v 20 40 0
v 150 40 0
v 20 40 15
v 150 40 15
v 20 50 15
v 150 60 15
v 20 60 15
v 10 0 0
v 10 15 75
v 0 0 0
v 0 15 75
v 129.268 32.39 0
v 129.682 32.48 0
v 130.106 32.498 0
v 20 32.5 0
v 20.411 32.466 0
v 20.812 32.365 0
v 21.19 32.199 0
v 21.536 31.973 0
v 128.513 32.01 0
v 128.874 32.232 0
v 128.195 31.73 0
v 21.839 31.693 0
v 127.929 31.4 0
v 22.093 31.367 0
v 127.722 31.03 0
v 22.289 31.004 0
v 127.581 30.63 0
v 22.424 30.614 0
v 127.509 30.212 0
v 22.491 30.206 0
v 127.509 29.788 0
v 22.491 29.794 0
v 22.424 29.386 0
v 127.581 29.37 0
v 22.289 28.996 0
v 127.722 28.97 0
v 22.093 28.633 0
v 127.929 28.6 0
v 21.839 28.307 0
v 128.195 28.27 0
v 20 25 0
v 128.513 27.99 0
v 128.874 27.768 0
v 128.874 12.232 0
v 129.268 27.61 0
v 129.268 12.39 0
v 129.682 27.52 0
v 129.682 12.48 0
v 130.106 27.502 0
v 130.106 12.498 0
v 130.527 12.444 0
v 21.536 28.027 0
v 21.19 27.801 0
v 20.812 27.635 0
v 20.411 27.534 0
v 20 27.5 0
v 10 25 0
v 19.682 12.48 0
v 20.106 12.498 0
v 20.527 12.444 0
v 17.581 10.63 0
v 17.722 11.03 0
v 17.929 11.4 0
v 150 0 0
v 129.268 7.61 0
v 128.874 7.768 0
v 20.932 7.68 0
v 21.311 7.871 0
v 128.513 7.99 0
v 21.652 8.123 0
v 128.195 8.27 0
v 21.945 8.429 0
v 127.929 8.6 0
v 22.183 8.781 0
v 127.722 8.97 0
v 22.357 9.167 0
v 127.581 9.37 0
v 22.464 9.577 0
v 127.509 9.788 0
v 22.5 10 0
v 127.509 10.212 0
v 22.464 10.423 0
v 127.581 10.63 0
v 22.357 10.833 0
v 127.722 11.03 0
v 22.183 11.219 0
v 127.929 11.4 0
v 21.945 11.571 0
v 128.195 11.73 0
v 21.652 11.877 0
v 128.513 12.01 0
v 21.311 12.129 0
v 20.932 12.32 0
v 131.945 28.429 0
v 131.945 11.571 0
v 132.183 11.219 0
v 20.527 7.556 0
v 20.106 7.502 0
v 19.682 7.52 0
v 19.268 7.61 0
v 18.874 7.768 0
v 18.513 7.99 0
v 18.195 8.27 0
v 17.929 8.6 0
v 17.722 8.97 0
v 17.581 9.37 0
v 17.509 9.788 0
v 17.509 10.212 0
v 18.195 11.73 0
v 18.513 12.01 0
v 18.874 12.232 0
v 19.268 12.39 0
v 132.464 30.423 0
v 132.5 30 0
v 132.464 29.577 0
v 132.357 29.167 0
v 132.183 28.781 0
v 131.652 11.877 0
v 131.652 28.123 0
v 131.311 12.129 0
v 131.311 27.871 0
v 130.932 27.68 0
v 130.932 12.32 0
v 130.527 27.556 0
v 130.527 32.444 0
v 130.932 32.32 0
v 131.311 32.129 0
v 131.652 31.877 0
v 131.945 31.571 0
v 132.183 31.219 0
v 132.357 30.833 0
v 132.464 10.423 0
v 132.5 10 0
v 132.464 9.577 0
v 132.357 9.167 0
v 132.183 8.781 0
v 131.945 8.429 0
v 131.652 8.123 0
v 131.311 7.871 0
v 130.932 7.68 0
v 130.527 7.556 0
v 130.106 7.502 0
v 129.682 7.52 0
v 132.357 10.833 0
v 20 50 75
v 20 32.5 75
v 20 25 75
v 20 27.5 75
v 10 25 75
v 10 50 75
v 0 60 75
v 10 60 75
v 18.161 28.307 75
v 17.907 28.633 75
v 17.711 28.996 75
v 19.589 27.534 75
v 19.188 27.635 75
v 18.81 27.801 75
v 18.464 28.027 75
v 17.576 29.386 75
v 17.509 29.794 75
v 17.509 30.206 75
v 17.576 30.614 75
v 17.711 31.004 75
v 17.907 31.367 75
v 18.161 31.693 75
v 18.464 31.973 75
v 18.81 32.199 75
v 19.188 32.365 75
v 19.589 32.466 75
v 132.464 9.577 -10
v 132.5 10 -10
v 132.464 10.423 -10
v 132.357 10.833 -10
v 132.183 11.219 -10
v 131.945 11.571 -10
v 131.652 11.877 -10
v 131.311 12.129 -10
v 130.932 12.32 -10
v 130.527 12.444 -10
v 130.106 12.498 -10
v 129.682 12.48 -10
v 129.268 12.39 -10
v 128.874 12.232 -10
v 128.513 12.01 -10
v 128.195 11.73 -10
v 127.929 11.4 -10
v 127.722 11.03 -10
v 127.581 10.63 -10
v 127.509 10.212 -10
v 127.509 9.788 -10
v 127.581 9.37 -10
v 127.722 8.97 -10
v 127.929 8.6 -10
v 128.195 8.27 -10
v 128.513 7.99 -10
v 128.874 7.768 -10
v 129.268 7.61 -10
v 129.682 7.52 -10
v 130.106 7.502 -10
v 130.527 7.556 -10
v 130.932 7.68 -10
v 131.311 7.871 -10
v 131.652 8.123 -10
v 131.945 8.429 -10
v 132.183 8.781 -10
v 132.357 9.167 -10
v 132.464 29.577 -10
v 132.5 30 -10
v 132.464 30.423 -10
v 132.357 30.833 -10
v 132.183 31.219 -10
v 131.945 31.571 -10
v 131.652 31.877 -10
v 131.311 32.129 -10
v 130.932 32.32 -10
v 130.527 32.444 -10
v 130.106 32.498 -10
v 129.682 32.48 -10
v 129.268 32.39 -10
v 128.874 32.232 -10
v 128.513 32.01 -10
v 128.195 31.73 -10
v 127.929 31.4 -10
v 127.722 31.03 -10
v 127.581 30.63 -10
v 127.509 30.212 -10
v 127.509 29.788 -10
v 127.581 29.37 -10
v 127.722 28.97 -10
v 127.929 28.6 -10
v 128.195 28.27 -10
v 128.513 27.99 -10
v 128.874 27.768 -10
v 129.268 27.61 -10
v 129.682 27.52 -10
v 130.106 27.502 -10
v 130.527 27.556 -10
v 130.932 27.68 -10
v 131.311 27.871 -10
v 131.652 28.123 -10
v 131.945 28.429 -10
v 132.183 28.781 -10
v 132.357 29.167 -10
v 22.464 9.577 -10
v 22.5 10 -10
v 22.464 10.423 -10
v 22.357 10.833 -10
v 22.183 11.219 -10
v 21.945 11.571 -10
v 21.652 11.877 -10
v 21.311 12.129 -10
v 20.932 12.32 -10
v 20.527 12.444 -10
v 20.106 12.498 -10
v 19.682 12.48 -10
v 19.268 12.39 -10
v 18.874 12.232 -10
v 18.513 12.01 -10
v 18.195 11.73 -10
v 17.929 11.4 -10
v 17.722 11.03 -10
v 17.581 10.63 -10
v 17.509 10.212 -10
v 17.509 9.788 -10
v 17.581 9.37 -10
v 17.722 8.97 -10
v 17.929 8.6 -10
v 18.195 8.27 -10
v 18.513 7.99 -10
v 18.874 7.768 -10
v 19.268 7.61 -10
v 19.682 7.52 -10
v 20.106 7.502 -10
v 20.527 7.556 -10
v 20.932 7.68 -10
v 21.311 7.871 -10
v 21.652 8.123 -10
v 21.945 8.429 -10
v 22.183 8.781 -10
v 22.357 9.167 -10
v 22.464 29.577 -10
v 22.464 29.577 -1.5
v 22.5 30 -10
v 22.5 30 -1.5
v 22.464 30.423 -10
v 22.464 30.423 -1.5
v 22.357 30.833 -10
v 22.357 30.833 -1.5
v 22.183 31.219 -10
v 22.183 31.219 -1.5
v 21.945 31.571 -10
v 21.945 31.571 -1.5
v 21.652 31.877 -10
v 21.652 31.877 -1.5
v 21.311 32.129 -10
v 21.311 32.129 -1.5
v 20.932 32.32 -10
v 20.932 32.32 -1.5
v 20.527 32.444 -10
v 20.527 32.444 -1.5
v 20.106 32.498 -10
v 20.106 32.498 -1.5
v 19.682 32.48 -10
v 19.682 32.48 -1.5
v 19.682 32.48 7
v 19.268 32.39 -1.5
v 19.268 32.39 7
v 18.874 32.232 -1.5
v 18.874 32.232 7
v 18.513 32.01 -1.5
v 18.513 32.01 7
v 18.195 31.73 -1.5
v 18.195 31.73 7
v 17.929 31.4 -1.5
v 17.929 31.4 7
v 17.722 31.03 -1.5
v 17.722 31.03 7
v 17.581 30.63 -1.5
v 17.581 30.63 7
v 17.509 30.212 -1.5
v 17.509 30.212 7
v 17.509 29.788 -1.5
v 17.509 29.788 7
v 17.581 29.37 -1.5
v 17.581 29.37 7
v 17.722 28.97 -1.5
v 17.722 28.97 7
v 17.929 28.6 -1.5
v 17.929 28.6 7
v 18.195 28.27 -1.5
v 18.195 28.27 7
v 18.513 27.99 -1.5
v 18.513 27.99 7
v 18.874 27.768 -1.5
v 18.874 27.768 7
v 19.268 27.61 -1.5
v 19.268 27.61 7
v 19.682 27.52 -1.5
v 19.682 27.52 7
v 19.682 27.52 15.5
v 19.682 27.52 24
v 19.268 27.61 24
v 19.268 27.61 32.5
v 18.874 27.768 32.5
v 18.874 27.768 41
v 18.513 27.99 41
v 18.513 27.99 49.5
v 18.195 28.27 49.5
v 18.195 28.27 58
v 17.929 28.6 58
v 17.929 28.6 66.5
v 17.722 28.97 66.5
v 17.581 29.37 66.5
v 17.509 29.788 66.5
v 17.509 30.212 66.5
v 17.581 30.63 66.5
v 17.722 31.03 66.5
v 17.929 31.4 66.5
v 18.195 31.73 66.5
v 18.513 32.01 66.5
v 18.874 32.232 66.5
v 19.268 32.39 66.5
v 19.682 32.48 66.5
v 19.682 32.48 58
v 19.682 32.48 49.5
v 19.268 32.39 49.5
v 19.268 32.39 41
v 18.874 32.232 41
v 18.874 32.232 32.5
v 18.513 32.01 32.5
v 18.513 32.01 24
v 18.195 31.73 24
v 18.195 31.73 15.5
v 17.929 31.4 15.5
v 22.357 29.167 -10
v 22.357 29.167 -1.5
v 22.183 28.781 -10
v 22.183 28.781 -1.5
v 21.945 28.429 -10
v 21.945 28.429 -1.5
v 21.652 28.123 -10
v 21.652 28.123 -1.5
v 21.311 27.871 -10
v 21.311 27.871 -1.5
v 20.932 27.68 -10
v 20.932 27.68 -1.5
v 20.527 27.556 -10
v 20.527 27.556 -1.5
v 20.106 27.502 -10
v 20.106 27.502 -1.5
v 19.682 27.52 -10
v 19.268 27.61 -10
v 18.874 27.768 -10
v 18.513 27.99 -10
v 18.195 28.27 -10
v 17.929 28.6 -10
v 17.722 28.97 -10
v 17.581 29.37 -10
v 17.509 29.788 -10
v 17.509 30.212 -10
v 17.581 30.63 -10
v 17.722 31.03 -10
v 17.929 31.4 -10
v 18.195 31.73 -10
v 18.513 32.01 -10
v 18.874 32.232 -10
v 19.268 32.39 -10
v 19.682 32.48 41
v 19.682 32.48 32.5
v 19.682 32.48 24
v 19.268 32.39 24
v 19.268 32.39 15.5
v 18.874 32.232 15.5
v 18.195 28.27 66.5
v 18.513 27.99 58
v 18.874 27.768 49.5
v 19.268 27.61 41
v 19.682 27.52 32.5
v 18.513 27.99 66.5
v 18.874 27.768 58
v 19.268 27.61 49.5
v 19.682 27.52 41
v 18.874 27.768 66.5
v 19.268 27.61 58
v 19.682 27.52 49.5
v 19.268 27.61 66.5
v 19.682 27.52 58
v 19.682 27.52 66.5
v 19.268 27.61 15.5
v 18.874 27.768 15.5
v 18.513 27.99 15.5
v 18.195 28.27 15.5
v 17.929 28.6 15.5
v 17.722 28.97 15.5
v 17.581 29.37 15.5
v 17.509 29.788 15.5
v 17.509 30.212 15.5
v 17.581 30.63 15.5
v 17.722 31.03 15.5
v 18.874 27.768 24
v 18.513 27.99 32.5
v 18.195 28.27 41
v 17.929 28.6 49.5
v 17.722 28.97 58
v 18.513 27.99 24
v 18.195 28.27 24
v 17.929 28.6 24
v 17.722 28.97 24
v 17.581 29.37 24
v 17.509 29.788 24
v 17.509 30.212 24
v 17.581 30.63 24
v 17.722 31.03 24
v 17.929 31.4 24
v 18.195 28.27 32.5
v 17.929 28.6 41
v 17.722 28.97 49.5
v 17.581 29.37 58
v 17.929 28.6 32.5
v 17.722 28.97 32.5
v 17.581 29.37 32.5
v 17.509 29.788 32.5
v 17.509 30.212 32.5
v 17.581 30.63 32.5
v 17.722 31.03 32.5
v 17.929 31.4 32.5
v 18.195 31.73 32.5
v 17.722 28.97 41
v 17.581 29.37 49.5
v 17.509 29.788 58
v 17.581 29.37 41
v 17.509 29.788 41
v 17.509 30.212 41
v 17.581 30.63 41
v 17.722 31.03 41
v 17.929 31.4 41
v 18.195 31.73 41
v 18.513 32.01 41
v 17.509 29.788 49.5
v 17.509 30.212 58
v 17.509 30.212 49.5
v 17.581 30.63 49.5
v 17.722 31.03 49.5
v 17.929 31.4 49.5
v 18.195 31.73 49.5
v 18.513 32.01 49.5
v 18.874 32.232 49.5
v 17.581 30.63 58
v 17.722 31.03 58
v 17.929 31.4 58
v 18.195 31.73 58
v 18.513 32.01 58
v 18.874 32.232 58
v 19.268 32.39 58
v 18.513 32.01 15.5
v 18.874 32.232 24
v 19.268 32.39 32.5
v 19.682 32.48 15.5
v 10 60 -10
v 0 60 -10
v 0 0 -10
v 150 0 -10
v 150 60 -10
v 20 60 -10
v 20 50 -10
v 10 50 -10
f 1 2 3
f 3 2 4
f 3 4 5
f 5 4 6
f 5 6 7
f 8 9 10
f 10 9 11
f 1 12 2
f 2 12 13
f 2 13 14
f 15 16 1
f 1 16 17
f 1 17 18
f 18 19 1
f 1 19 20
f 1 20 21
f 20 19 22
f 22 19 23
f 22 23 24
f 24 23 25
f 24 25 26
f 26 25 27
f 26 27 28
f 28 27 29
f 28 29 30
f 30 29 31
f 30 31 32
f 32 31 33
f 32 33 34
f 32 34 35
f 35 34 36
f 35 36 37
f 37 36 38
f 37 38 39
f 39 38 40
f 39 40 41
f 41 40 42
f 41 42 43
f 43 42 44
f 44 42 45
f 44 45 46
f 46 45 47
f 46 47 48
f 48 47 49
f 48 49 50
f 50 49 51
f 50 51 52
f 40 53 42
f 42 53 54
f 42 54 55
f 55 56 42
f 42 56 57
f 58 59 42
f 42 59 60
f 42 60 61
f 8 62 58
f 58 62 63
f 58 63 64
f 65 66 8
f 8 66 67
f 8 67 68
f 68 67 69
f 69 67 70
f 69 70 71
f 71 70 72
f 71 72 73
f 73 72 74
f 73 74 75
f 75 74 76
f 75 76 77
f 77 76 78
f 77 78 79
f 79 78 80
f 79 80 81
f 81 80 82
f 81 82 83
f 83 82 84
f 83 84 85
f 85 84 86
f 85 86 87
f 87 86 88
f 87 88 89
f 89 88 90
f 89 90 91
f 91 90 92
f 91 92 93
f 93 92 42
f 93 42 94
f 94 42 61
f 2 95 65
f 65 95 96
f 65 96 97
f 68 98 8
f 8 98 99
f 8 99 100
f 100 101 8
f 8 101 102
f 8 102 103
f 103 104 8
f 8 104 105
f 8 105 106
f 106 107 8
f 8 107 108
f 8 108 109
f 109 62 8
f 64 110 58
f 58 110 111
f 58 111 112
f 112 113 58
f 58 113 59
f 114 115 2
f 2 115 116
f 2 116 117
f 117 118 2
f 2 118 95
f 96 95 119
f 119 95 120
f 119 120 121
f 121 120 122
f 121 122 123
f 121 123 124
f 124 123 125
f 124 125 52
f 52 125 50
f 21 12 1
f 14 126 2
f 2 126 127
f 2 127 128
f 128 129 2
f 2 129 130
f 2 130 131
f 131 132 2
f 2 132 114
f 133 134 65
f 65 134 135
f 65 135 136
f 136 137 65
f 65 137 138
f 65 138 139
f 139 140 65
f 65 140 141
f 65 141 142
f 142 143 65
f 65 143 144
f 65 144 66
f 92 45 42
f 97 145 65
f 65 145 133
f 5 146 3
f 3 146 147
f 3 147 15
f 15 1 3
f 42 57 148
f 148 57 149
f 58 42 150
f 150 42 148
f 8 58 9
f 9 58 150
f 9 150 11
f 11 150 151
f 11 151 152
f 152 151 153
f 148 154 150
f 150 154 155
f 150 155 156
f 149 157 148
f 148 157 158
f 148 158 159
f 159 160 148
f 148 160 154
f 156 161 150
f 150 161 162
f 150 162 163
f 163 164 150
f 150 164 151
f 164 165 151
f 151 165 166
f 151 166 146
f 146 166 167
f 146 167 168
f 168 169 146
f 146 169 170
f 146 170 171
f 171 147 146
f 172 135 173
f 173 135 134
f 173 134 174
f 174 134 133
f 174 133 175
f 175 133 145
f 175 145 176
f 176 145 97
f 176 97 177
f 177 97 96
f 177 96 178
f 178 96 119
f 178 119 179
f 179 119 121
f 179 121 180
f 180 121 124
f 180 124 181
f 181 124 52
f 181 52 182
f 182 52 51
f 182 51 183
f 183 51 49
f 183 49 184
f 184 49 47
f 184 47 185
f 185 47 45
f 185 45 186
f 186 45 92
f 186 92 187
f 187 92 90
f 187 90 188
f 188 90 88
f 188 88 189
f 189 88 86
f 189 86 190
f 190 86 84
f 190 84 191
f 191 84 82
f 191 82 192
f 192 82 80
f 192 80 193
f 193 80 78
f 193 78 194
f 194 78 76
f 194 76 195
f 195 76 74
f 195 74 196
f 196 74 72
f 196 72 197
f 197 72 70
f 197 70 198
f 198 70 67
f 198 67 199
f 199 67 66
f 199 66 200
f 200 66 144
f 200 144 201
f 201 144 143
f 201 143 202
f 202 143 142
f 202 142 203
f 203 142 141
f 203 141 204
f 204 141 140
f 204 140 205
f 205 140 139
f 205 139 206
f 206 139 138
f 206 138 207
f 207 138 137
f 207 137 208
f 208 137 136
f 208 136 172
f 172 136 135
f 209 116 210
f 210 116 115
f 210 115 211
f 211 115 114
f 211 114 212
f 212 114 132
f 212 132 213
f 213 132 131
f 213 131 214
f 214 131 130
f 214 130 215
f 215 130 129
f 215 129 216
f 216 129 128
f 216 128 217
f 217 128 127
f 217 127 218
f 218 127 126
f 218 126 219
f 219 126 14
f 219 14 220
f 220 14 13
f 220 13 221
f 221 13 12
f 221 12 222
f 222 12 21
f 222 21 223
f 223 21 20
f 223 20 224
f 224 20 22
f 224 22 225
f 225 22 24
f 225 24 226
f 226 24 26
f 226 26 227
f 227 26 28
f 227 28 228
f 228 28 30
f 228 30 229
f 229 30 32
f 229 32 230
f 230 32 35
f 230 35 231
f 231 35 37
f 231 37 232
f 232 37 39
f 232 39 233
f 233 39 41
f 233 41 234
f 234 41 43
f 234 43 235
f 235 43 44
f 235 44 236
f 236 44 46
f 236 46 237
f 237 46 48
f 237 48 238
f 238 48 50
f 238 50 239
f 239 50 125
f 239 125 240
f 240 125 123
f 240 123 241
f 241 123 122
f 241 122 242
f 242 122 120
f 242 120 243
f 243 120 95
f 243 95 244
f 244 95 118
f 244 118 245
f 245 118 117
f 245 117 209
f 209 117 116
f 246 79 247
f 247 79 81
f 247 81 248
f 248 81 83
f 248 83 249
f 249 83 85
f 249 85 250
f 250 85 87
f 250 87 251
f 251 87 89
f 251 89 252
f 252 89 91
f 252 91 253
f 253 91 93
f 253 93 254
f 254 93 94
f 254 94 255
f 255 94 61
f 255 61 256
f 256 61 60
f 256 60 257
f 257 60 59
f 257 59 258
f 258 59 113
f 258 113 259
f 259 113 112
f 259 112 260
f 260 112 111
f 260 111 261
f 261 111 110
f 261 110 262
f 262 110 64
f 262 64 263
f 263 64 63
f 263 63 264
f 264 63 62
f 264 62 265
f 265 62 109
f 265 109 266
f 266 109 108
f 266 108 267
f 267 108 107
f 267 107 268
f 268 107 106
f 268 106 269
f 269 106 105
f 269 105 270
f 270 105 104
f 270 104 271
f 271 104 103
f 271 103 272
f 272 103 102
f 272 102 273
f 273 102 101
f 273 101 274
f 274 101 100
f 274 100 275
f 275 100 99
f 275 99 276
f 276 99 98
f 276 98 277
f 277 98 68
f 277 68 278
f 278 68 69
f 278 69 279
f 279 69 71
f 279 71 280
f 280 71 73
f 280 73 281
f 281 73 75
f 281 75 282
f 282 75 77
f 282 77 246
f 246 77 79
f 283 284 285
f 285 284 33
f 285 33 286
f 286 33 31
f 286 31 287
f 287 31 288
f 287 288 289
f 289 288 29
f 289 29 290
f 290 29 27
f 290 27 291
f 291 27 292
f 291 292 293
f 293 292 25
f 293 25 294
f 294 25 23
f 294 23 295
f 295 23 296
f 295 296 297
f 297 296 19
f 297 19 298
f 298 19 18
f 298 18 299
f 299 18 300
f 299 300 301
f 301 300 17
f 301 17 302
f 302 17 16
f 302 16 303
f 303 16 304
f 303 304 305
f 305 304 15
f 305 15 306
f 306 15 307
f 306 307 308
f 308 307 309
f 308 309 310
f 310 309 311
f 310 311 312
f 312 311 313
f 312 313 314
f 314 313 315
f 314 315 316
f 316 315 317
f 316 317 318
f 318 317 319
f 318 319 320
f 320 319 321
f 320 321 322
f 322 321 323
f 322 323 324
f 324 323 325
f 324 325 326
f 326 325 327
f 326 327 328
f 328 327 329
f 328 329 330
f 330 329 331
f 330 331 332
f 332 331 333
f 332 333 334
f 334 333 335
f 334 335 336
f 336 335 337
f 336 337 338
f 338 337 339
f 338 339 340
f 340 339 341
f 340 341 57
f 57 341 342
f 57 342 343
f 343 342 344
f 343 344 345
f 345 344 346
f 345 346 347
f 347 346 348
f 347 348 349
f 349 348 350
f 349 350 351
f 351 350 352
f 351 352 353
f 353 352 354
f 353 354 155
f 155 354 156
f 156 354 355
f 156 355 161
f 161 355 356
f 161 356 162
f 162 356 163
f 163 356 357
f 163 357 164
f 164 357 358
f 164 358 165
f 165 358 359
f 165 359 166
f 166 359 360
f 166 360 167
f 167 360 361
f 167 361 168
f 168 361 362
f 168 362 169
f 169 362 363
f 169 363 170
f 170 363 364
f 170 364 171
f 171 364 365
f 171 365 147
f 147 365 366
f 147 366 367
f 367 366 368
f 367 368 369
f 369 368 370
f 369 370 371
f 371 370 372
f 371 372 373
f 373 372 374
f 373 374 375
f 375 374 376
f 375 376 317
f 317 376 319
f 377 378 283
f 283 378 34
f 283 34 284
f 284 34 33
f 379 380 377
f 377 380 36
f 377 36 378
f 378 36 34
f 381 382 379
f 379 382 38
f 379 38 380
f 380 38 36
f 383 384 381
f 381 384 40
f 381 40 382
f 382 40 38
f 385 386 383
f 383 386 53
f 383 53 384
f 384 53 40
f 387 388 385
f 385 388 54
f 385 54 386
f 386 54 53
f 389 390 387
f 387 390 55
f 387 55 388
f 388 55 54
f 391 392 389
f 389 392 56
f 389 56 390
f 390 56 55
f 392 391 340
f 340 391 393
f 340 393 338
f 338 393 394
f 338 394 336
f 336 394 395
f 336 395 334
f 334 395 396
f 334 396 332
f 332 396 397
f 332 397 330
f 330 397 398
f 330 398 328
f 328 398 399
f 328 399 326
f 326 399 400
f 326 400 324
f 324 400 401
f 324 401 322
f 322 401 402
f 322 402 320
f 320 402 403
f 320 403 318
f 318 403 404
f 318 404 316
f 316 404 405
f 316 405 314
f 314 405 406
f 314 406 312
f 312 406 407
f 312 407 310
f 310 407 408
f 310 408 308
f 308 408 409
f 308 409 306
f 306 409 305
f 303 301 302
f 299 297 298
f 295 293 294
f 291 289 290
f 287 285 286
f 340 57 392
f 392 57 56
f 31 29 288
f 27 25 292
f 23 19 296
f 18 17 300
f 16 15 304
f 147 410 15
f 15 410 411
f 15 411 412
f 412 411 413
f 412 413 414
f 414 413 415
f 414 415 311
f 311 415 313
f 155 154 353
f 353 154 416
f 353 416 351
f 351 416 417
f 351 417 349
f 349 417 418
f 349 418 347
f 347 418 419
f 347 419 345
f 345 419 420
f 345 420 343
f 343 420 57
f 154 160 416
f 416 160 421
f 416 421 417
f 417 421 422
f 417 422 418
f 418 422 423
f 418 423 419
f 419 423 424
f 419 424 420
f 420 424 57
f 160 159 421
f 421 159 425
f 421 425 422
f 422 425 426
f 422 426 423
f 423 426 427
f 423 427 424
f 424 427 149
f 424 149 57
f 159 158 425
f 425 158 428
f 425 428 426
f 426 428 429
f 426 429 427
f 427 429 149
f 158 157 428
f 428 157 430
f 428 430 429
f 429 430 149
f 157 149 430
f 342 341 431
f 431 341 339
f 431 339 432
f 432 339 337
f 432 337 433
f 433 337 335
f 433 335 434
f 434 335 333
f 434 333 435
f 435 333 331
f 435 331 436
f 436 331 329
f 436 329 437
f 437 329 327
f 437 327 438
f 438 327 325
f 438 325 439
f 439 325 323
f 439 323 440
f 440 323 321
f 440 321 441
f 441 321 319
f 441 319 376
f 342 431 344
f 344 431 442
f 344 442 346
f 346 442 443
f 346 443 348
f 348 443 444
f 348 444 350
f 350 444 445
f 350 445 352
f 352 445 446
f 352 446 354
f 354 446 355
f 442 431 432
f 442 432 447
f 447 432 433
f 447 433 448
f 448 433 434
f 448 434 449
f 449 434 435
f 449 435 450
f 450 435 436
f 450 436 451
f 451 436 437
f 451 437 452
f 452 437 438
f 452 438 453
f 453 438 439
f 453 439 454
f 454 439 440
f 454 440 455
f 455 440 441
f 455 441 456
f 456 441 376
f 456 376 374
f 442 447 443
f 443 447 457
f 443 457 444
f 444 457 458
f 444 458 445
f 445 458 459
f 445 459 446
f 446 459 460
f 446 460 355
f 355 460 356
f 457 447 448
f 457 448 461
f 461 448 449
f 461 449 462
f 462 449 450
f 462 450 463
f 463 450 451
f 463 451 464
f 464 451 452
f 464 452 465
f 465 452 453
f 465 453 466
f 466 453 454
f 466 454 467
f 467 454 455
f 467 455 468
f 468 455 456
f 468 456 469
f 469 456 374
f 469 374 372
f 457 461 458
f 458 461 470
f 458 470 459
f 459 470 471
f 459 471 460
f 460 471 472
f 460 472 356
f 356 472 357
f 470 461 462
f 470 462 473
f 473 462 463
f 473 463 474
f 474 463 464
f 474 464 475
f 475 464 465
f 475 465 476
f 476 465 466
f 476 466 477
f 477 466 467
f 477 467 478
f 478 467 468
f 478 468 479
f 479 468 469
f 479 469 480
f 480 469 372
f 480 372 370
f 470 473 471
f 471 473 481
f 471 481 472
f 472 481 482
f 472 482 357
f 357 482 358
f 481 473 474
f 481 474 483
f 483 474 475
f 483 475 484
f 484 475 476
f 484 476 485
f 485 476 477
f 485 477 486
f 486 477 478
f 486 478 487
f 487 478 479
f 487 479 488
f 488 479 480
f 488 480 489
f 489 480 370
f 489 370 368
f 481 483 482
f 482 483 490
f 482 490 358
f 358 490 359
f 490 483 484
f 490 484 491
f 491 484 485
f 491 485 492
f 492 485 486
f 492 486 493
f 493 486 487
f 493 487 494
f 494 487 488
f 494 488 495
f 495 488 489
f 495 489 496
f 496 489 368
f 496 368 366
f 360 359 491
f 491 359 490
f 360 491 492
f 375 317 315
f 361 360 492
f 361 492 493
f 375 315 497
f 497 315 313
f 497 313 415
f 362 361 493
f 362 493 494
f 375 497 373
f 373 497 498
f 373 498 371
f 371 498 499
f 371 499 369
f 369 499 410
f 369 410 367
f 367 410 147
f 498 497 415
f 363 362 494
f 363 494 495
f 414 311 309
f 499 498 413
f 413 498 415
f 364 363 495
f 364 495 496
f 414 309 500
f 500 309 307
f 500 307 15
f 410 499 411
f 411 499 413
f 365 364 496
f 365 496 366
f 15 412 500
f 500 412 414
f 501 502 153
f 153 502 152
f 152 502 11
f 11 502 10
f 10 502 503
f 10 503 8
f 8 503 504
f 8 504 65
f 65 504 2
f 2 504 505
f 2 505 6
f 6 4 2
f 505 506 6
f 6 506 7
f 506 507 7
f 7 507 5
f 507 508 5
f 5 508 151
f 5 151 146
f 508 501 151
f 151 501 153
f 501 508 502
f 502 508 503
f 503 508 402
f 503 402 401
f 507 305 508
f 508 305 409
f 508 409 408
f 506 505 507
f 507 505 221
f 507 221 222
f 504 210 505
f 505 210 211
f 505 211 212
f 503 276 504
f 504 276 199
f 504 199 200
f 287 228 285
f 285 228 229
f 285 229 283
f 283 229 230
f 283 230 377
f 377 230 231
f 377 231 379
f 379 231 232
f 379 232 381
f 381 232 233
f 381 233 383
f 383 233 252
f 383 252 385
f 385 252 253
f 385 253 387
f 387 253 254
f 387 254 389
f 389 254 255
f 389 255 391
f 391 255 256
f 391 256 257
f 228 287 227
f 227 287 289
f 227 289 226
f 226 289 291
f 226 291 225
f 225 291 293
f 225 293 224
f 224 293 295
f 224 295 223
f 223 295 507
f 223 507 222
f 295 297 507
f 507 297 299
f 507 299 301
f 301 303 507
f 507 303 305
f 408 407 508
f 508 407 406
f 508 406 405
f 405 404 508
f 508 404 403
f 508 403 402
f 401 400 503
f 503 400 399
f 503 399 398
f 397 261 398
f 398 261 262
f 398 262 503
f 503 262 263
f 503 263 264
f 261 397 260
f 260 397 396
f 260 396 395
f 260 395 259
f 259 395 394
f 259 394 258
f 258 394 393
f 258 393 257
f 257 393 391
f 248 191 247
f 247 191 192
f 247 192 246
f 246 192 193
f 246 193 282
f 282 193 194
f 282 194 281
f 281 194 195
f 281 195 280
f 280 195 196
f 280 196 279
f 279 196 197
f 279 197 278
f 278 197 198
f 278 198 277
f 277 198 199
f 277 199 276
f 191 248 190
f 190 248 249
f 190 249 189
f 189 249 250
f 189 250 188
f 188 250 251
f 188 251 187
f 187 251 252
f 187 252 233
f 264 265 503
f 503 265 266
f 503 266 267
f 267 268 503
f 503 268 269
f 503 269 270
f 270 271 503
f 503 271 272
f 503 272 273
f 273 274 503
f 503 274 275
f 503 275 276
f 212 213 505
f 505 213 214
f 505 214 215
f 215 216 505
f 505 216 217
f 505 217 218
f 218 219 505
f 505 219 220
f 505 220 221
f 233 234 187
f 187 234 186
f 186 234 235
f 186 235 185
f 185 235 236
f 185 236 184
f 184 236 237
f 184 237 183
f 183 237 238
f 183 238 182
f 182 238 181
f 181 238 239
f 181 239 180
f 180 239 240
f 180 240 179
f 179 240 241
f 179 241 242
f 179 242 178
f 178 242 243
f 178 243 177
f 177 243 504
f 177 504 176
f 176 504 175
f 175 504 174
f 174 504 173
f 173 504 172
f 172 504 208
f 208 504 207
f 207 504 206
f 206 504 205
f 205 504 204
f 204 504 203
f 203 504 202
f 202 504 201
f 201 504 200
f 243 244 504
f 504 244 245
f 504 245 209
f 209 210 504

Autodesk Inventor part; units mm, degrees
ref_plane "YZ Plane" through (0, 0, 0) normal (1, 0, 0) x (0, 1, 0)
ref_plane "XZ Plane" through (0, 0, 0) normal (0, 1, 0) x (-1, 0, 0)
ref_plane "XY Plane" through (0, 0, 0) normal (0, 0, 1) x (1, 0, 0)
sketch "스케치1" plane through (0, 0, 0) normal (0, 0, 1) x (1, 0, 0)
  line L0 (0, 0) -> (150, 0)
  line L1 (150, 0) -> (150, 60)
  line L2 (150, 60) -> (0, 60)
  line L3 (0, 60) -> (0, 0)
  circle A0 centre (20, 30) radius 2.5
  circle A1 centre (20, 10) radius 2.5
  circle A2 centre (130, 30) radius 2.5
  circle A3 centre (130, 10) radius 2.5
  line L4 (10, 60) -> (10, 0)
  line L5 (20, 60) -> (20, 50)
  line L6 (20, 50) -> (10, 50)
  line L7 (20, 50) -> (20, 25)
  line L8 (20, 25) -> (10, 25)
  line L9 (10, 15) -> (0, 15)
  line L10 (20, 40) -> (150, 40)
  point P0 (20, 27.5)
  point P1 (20, 32.5)
  dimension "d0" = 5
  dimension "d1" = 30
  dimension "d2" = 20
  dimension "d3" = 20
  dimension "d4" = 150
  dimension "d5" = 20
  dimension "d6" = 60
  dimension "d7" = 10
  dimension "d8" = 10
  dimension "d9" = 10
  dimension "d10" = 10
  dimension "d11" = 25
  dimension "d16" = 10
  dimension "d19" = 20
extrude "돌출1" add sketch "스케치1" against normal blind 10 contours L3 L9 L4 L0 | L4 L8 L7 A0 L10 L1 L0 | L3 L2 L4 L9 | L10 L7 L5 L2 L1 | L4 L6 L7 A0 L8
extrude "돌출2" add sketch "스케치1" along normal blind 75 contours L3 L2 L4 L9 | L4 L6 L7 A0 L8
sketch "스케치2" plane through (0, 0, -10) normal (-1, 0, 0) x (0, 0, 1)
  line L0 (0, 60) -> (85, 60) projected
  line L1 (0, 0) -> (0, 60) projected
  line L2 (10, 0) -> (0, 0) projected
  line L3 (10, 15) -> (10, 0) projected
  line L4 (10, 15) -> (85, 15) projected
  line L5 (85, 60) -> (85, 15) projected
  line L6 (85, 15) -> (10, 0)
extrude "돌출3" add sketch "스케치2" against normal up to surface (10 mm away) contours L6 L3 L4
extrude "돌출4" add sketch "스케치1" along normal blind 15 contours L10 L7 L5 L2 L1
properties part number "NewModuleConnectorLeft_3D 인쇄"
